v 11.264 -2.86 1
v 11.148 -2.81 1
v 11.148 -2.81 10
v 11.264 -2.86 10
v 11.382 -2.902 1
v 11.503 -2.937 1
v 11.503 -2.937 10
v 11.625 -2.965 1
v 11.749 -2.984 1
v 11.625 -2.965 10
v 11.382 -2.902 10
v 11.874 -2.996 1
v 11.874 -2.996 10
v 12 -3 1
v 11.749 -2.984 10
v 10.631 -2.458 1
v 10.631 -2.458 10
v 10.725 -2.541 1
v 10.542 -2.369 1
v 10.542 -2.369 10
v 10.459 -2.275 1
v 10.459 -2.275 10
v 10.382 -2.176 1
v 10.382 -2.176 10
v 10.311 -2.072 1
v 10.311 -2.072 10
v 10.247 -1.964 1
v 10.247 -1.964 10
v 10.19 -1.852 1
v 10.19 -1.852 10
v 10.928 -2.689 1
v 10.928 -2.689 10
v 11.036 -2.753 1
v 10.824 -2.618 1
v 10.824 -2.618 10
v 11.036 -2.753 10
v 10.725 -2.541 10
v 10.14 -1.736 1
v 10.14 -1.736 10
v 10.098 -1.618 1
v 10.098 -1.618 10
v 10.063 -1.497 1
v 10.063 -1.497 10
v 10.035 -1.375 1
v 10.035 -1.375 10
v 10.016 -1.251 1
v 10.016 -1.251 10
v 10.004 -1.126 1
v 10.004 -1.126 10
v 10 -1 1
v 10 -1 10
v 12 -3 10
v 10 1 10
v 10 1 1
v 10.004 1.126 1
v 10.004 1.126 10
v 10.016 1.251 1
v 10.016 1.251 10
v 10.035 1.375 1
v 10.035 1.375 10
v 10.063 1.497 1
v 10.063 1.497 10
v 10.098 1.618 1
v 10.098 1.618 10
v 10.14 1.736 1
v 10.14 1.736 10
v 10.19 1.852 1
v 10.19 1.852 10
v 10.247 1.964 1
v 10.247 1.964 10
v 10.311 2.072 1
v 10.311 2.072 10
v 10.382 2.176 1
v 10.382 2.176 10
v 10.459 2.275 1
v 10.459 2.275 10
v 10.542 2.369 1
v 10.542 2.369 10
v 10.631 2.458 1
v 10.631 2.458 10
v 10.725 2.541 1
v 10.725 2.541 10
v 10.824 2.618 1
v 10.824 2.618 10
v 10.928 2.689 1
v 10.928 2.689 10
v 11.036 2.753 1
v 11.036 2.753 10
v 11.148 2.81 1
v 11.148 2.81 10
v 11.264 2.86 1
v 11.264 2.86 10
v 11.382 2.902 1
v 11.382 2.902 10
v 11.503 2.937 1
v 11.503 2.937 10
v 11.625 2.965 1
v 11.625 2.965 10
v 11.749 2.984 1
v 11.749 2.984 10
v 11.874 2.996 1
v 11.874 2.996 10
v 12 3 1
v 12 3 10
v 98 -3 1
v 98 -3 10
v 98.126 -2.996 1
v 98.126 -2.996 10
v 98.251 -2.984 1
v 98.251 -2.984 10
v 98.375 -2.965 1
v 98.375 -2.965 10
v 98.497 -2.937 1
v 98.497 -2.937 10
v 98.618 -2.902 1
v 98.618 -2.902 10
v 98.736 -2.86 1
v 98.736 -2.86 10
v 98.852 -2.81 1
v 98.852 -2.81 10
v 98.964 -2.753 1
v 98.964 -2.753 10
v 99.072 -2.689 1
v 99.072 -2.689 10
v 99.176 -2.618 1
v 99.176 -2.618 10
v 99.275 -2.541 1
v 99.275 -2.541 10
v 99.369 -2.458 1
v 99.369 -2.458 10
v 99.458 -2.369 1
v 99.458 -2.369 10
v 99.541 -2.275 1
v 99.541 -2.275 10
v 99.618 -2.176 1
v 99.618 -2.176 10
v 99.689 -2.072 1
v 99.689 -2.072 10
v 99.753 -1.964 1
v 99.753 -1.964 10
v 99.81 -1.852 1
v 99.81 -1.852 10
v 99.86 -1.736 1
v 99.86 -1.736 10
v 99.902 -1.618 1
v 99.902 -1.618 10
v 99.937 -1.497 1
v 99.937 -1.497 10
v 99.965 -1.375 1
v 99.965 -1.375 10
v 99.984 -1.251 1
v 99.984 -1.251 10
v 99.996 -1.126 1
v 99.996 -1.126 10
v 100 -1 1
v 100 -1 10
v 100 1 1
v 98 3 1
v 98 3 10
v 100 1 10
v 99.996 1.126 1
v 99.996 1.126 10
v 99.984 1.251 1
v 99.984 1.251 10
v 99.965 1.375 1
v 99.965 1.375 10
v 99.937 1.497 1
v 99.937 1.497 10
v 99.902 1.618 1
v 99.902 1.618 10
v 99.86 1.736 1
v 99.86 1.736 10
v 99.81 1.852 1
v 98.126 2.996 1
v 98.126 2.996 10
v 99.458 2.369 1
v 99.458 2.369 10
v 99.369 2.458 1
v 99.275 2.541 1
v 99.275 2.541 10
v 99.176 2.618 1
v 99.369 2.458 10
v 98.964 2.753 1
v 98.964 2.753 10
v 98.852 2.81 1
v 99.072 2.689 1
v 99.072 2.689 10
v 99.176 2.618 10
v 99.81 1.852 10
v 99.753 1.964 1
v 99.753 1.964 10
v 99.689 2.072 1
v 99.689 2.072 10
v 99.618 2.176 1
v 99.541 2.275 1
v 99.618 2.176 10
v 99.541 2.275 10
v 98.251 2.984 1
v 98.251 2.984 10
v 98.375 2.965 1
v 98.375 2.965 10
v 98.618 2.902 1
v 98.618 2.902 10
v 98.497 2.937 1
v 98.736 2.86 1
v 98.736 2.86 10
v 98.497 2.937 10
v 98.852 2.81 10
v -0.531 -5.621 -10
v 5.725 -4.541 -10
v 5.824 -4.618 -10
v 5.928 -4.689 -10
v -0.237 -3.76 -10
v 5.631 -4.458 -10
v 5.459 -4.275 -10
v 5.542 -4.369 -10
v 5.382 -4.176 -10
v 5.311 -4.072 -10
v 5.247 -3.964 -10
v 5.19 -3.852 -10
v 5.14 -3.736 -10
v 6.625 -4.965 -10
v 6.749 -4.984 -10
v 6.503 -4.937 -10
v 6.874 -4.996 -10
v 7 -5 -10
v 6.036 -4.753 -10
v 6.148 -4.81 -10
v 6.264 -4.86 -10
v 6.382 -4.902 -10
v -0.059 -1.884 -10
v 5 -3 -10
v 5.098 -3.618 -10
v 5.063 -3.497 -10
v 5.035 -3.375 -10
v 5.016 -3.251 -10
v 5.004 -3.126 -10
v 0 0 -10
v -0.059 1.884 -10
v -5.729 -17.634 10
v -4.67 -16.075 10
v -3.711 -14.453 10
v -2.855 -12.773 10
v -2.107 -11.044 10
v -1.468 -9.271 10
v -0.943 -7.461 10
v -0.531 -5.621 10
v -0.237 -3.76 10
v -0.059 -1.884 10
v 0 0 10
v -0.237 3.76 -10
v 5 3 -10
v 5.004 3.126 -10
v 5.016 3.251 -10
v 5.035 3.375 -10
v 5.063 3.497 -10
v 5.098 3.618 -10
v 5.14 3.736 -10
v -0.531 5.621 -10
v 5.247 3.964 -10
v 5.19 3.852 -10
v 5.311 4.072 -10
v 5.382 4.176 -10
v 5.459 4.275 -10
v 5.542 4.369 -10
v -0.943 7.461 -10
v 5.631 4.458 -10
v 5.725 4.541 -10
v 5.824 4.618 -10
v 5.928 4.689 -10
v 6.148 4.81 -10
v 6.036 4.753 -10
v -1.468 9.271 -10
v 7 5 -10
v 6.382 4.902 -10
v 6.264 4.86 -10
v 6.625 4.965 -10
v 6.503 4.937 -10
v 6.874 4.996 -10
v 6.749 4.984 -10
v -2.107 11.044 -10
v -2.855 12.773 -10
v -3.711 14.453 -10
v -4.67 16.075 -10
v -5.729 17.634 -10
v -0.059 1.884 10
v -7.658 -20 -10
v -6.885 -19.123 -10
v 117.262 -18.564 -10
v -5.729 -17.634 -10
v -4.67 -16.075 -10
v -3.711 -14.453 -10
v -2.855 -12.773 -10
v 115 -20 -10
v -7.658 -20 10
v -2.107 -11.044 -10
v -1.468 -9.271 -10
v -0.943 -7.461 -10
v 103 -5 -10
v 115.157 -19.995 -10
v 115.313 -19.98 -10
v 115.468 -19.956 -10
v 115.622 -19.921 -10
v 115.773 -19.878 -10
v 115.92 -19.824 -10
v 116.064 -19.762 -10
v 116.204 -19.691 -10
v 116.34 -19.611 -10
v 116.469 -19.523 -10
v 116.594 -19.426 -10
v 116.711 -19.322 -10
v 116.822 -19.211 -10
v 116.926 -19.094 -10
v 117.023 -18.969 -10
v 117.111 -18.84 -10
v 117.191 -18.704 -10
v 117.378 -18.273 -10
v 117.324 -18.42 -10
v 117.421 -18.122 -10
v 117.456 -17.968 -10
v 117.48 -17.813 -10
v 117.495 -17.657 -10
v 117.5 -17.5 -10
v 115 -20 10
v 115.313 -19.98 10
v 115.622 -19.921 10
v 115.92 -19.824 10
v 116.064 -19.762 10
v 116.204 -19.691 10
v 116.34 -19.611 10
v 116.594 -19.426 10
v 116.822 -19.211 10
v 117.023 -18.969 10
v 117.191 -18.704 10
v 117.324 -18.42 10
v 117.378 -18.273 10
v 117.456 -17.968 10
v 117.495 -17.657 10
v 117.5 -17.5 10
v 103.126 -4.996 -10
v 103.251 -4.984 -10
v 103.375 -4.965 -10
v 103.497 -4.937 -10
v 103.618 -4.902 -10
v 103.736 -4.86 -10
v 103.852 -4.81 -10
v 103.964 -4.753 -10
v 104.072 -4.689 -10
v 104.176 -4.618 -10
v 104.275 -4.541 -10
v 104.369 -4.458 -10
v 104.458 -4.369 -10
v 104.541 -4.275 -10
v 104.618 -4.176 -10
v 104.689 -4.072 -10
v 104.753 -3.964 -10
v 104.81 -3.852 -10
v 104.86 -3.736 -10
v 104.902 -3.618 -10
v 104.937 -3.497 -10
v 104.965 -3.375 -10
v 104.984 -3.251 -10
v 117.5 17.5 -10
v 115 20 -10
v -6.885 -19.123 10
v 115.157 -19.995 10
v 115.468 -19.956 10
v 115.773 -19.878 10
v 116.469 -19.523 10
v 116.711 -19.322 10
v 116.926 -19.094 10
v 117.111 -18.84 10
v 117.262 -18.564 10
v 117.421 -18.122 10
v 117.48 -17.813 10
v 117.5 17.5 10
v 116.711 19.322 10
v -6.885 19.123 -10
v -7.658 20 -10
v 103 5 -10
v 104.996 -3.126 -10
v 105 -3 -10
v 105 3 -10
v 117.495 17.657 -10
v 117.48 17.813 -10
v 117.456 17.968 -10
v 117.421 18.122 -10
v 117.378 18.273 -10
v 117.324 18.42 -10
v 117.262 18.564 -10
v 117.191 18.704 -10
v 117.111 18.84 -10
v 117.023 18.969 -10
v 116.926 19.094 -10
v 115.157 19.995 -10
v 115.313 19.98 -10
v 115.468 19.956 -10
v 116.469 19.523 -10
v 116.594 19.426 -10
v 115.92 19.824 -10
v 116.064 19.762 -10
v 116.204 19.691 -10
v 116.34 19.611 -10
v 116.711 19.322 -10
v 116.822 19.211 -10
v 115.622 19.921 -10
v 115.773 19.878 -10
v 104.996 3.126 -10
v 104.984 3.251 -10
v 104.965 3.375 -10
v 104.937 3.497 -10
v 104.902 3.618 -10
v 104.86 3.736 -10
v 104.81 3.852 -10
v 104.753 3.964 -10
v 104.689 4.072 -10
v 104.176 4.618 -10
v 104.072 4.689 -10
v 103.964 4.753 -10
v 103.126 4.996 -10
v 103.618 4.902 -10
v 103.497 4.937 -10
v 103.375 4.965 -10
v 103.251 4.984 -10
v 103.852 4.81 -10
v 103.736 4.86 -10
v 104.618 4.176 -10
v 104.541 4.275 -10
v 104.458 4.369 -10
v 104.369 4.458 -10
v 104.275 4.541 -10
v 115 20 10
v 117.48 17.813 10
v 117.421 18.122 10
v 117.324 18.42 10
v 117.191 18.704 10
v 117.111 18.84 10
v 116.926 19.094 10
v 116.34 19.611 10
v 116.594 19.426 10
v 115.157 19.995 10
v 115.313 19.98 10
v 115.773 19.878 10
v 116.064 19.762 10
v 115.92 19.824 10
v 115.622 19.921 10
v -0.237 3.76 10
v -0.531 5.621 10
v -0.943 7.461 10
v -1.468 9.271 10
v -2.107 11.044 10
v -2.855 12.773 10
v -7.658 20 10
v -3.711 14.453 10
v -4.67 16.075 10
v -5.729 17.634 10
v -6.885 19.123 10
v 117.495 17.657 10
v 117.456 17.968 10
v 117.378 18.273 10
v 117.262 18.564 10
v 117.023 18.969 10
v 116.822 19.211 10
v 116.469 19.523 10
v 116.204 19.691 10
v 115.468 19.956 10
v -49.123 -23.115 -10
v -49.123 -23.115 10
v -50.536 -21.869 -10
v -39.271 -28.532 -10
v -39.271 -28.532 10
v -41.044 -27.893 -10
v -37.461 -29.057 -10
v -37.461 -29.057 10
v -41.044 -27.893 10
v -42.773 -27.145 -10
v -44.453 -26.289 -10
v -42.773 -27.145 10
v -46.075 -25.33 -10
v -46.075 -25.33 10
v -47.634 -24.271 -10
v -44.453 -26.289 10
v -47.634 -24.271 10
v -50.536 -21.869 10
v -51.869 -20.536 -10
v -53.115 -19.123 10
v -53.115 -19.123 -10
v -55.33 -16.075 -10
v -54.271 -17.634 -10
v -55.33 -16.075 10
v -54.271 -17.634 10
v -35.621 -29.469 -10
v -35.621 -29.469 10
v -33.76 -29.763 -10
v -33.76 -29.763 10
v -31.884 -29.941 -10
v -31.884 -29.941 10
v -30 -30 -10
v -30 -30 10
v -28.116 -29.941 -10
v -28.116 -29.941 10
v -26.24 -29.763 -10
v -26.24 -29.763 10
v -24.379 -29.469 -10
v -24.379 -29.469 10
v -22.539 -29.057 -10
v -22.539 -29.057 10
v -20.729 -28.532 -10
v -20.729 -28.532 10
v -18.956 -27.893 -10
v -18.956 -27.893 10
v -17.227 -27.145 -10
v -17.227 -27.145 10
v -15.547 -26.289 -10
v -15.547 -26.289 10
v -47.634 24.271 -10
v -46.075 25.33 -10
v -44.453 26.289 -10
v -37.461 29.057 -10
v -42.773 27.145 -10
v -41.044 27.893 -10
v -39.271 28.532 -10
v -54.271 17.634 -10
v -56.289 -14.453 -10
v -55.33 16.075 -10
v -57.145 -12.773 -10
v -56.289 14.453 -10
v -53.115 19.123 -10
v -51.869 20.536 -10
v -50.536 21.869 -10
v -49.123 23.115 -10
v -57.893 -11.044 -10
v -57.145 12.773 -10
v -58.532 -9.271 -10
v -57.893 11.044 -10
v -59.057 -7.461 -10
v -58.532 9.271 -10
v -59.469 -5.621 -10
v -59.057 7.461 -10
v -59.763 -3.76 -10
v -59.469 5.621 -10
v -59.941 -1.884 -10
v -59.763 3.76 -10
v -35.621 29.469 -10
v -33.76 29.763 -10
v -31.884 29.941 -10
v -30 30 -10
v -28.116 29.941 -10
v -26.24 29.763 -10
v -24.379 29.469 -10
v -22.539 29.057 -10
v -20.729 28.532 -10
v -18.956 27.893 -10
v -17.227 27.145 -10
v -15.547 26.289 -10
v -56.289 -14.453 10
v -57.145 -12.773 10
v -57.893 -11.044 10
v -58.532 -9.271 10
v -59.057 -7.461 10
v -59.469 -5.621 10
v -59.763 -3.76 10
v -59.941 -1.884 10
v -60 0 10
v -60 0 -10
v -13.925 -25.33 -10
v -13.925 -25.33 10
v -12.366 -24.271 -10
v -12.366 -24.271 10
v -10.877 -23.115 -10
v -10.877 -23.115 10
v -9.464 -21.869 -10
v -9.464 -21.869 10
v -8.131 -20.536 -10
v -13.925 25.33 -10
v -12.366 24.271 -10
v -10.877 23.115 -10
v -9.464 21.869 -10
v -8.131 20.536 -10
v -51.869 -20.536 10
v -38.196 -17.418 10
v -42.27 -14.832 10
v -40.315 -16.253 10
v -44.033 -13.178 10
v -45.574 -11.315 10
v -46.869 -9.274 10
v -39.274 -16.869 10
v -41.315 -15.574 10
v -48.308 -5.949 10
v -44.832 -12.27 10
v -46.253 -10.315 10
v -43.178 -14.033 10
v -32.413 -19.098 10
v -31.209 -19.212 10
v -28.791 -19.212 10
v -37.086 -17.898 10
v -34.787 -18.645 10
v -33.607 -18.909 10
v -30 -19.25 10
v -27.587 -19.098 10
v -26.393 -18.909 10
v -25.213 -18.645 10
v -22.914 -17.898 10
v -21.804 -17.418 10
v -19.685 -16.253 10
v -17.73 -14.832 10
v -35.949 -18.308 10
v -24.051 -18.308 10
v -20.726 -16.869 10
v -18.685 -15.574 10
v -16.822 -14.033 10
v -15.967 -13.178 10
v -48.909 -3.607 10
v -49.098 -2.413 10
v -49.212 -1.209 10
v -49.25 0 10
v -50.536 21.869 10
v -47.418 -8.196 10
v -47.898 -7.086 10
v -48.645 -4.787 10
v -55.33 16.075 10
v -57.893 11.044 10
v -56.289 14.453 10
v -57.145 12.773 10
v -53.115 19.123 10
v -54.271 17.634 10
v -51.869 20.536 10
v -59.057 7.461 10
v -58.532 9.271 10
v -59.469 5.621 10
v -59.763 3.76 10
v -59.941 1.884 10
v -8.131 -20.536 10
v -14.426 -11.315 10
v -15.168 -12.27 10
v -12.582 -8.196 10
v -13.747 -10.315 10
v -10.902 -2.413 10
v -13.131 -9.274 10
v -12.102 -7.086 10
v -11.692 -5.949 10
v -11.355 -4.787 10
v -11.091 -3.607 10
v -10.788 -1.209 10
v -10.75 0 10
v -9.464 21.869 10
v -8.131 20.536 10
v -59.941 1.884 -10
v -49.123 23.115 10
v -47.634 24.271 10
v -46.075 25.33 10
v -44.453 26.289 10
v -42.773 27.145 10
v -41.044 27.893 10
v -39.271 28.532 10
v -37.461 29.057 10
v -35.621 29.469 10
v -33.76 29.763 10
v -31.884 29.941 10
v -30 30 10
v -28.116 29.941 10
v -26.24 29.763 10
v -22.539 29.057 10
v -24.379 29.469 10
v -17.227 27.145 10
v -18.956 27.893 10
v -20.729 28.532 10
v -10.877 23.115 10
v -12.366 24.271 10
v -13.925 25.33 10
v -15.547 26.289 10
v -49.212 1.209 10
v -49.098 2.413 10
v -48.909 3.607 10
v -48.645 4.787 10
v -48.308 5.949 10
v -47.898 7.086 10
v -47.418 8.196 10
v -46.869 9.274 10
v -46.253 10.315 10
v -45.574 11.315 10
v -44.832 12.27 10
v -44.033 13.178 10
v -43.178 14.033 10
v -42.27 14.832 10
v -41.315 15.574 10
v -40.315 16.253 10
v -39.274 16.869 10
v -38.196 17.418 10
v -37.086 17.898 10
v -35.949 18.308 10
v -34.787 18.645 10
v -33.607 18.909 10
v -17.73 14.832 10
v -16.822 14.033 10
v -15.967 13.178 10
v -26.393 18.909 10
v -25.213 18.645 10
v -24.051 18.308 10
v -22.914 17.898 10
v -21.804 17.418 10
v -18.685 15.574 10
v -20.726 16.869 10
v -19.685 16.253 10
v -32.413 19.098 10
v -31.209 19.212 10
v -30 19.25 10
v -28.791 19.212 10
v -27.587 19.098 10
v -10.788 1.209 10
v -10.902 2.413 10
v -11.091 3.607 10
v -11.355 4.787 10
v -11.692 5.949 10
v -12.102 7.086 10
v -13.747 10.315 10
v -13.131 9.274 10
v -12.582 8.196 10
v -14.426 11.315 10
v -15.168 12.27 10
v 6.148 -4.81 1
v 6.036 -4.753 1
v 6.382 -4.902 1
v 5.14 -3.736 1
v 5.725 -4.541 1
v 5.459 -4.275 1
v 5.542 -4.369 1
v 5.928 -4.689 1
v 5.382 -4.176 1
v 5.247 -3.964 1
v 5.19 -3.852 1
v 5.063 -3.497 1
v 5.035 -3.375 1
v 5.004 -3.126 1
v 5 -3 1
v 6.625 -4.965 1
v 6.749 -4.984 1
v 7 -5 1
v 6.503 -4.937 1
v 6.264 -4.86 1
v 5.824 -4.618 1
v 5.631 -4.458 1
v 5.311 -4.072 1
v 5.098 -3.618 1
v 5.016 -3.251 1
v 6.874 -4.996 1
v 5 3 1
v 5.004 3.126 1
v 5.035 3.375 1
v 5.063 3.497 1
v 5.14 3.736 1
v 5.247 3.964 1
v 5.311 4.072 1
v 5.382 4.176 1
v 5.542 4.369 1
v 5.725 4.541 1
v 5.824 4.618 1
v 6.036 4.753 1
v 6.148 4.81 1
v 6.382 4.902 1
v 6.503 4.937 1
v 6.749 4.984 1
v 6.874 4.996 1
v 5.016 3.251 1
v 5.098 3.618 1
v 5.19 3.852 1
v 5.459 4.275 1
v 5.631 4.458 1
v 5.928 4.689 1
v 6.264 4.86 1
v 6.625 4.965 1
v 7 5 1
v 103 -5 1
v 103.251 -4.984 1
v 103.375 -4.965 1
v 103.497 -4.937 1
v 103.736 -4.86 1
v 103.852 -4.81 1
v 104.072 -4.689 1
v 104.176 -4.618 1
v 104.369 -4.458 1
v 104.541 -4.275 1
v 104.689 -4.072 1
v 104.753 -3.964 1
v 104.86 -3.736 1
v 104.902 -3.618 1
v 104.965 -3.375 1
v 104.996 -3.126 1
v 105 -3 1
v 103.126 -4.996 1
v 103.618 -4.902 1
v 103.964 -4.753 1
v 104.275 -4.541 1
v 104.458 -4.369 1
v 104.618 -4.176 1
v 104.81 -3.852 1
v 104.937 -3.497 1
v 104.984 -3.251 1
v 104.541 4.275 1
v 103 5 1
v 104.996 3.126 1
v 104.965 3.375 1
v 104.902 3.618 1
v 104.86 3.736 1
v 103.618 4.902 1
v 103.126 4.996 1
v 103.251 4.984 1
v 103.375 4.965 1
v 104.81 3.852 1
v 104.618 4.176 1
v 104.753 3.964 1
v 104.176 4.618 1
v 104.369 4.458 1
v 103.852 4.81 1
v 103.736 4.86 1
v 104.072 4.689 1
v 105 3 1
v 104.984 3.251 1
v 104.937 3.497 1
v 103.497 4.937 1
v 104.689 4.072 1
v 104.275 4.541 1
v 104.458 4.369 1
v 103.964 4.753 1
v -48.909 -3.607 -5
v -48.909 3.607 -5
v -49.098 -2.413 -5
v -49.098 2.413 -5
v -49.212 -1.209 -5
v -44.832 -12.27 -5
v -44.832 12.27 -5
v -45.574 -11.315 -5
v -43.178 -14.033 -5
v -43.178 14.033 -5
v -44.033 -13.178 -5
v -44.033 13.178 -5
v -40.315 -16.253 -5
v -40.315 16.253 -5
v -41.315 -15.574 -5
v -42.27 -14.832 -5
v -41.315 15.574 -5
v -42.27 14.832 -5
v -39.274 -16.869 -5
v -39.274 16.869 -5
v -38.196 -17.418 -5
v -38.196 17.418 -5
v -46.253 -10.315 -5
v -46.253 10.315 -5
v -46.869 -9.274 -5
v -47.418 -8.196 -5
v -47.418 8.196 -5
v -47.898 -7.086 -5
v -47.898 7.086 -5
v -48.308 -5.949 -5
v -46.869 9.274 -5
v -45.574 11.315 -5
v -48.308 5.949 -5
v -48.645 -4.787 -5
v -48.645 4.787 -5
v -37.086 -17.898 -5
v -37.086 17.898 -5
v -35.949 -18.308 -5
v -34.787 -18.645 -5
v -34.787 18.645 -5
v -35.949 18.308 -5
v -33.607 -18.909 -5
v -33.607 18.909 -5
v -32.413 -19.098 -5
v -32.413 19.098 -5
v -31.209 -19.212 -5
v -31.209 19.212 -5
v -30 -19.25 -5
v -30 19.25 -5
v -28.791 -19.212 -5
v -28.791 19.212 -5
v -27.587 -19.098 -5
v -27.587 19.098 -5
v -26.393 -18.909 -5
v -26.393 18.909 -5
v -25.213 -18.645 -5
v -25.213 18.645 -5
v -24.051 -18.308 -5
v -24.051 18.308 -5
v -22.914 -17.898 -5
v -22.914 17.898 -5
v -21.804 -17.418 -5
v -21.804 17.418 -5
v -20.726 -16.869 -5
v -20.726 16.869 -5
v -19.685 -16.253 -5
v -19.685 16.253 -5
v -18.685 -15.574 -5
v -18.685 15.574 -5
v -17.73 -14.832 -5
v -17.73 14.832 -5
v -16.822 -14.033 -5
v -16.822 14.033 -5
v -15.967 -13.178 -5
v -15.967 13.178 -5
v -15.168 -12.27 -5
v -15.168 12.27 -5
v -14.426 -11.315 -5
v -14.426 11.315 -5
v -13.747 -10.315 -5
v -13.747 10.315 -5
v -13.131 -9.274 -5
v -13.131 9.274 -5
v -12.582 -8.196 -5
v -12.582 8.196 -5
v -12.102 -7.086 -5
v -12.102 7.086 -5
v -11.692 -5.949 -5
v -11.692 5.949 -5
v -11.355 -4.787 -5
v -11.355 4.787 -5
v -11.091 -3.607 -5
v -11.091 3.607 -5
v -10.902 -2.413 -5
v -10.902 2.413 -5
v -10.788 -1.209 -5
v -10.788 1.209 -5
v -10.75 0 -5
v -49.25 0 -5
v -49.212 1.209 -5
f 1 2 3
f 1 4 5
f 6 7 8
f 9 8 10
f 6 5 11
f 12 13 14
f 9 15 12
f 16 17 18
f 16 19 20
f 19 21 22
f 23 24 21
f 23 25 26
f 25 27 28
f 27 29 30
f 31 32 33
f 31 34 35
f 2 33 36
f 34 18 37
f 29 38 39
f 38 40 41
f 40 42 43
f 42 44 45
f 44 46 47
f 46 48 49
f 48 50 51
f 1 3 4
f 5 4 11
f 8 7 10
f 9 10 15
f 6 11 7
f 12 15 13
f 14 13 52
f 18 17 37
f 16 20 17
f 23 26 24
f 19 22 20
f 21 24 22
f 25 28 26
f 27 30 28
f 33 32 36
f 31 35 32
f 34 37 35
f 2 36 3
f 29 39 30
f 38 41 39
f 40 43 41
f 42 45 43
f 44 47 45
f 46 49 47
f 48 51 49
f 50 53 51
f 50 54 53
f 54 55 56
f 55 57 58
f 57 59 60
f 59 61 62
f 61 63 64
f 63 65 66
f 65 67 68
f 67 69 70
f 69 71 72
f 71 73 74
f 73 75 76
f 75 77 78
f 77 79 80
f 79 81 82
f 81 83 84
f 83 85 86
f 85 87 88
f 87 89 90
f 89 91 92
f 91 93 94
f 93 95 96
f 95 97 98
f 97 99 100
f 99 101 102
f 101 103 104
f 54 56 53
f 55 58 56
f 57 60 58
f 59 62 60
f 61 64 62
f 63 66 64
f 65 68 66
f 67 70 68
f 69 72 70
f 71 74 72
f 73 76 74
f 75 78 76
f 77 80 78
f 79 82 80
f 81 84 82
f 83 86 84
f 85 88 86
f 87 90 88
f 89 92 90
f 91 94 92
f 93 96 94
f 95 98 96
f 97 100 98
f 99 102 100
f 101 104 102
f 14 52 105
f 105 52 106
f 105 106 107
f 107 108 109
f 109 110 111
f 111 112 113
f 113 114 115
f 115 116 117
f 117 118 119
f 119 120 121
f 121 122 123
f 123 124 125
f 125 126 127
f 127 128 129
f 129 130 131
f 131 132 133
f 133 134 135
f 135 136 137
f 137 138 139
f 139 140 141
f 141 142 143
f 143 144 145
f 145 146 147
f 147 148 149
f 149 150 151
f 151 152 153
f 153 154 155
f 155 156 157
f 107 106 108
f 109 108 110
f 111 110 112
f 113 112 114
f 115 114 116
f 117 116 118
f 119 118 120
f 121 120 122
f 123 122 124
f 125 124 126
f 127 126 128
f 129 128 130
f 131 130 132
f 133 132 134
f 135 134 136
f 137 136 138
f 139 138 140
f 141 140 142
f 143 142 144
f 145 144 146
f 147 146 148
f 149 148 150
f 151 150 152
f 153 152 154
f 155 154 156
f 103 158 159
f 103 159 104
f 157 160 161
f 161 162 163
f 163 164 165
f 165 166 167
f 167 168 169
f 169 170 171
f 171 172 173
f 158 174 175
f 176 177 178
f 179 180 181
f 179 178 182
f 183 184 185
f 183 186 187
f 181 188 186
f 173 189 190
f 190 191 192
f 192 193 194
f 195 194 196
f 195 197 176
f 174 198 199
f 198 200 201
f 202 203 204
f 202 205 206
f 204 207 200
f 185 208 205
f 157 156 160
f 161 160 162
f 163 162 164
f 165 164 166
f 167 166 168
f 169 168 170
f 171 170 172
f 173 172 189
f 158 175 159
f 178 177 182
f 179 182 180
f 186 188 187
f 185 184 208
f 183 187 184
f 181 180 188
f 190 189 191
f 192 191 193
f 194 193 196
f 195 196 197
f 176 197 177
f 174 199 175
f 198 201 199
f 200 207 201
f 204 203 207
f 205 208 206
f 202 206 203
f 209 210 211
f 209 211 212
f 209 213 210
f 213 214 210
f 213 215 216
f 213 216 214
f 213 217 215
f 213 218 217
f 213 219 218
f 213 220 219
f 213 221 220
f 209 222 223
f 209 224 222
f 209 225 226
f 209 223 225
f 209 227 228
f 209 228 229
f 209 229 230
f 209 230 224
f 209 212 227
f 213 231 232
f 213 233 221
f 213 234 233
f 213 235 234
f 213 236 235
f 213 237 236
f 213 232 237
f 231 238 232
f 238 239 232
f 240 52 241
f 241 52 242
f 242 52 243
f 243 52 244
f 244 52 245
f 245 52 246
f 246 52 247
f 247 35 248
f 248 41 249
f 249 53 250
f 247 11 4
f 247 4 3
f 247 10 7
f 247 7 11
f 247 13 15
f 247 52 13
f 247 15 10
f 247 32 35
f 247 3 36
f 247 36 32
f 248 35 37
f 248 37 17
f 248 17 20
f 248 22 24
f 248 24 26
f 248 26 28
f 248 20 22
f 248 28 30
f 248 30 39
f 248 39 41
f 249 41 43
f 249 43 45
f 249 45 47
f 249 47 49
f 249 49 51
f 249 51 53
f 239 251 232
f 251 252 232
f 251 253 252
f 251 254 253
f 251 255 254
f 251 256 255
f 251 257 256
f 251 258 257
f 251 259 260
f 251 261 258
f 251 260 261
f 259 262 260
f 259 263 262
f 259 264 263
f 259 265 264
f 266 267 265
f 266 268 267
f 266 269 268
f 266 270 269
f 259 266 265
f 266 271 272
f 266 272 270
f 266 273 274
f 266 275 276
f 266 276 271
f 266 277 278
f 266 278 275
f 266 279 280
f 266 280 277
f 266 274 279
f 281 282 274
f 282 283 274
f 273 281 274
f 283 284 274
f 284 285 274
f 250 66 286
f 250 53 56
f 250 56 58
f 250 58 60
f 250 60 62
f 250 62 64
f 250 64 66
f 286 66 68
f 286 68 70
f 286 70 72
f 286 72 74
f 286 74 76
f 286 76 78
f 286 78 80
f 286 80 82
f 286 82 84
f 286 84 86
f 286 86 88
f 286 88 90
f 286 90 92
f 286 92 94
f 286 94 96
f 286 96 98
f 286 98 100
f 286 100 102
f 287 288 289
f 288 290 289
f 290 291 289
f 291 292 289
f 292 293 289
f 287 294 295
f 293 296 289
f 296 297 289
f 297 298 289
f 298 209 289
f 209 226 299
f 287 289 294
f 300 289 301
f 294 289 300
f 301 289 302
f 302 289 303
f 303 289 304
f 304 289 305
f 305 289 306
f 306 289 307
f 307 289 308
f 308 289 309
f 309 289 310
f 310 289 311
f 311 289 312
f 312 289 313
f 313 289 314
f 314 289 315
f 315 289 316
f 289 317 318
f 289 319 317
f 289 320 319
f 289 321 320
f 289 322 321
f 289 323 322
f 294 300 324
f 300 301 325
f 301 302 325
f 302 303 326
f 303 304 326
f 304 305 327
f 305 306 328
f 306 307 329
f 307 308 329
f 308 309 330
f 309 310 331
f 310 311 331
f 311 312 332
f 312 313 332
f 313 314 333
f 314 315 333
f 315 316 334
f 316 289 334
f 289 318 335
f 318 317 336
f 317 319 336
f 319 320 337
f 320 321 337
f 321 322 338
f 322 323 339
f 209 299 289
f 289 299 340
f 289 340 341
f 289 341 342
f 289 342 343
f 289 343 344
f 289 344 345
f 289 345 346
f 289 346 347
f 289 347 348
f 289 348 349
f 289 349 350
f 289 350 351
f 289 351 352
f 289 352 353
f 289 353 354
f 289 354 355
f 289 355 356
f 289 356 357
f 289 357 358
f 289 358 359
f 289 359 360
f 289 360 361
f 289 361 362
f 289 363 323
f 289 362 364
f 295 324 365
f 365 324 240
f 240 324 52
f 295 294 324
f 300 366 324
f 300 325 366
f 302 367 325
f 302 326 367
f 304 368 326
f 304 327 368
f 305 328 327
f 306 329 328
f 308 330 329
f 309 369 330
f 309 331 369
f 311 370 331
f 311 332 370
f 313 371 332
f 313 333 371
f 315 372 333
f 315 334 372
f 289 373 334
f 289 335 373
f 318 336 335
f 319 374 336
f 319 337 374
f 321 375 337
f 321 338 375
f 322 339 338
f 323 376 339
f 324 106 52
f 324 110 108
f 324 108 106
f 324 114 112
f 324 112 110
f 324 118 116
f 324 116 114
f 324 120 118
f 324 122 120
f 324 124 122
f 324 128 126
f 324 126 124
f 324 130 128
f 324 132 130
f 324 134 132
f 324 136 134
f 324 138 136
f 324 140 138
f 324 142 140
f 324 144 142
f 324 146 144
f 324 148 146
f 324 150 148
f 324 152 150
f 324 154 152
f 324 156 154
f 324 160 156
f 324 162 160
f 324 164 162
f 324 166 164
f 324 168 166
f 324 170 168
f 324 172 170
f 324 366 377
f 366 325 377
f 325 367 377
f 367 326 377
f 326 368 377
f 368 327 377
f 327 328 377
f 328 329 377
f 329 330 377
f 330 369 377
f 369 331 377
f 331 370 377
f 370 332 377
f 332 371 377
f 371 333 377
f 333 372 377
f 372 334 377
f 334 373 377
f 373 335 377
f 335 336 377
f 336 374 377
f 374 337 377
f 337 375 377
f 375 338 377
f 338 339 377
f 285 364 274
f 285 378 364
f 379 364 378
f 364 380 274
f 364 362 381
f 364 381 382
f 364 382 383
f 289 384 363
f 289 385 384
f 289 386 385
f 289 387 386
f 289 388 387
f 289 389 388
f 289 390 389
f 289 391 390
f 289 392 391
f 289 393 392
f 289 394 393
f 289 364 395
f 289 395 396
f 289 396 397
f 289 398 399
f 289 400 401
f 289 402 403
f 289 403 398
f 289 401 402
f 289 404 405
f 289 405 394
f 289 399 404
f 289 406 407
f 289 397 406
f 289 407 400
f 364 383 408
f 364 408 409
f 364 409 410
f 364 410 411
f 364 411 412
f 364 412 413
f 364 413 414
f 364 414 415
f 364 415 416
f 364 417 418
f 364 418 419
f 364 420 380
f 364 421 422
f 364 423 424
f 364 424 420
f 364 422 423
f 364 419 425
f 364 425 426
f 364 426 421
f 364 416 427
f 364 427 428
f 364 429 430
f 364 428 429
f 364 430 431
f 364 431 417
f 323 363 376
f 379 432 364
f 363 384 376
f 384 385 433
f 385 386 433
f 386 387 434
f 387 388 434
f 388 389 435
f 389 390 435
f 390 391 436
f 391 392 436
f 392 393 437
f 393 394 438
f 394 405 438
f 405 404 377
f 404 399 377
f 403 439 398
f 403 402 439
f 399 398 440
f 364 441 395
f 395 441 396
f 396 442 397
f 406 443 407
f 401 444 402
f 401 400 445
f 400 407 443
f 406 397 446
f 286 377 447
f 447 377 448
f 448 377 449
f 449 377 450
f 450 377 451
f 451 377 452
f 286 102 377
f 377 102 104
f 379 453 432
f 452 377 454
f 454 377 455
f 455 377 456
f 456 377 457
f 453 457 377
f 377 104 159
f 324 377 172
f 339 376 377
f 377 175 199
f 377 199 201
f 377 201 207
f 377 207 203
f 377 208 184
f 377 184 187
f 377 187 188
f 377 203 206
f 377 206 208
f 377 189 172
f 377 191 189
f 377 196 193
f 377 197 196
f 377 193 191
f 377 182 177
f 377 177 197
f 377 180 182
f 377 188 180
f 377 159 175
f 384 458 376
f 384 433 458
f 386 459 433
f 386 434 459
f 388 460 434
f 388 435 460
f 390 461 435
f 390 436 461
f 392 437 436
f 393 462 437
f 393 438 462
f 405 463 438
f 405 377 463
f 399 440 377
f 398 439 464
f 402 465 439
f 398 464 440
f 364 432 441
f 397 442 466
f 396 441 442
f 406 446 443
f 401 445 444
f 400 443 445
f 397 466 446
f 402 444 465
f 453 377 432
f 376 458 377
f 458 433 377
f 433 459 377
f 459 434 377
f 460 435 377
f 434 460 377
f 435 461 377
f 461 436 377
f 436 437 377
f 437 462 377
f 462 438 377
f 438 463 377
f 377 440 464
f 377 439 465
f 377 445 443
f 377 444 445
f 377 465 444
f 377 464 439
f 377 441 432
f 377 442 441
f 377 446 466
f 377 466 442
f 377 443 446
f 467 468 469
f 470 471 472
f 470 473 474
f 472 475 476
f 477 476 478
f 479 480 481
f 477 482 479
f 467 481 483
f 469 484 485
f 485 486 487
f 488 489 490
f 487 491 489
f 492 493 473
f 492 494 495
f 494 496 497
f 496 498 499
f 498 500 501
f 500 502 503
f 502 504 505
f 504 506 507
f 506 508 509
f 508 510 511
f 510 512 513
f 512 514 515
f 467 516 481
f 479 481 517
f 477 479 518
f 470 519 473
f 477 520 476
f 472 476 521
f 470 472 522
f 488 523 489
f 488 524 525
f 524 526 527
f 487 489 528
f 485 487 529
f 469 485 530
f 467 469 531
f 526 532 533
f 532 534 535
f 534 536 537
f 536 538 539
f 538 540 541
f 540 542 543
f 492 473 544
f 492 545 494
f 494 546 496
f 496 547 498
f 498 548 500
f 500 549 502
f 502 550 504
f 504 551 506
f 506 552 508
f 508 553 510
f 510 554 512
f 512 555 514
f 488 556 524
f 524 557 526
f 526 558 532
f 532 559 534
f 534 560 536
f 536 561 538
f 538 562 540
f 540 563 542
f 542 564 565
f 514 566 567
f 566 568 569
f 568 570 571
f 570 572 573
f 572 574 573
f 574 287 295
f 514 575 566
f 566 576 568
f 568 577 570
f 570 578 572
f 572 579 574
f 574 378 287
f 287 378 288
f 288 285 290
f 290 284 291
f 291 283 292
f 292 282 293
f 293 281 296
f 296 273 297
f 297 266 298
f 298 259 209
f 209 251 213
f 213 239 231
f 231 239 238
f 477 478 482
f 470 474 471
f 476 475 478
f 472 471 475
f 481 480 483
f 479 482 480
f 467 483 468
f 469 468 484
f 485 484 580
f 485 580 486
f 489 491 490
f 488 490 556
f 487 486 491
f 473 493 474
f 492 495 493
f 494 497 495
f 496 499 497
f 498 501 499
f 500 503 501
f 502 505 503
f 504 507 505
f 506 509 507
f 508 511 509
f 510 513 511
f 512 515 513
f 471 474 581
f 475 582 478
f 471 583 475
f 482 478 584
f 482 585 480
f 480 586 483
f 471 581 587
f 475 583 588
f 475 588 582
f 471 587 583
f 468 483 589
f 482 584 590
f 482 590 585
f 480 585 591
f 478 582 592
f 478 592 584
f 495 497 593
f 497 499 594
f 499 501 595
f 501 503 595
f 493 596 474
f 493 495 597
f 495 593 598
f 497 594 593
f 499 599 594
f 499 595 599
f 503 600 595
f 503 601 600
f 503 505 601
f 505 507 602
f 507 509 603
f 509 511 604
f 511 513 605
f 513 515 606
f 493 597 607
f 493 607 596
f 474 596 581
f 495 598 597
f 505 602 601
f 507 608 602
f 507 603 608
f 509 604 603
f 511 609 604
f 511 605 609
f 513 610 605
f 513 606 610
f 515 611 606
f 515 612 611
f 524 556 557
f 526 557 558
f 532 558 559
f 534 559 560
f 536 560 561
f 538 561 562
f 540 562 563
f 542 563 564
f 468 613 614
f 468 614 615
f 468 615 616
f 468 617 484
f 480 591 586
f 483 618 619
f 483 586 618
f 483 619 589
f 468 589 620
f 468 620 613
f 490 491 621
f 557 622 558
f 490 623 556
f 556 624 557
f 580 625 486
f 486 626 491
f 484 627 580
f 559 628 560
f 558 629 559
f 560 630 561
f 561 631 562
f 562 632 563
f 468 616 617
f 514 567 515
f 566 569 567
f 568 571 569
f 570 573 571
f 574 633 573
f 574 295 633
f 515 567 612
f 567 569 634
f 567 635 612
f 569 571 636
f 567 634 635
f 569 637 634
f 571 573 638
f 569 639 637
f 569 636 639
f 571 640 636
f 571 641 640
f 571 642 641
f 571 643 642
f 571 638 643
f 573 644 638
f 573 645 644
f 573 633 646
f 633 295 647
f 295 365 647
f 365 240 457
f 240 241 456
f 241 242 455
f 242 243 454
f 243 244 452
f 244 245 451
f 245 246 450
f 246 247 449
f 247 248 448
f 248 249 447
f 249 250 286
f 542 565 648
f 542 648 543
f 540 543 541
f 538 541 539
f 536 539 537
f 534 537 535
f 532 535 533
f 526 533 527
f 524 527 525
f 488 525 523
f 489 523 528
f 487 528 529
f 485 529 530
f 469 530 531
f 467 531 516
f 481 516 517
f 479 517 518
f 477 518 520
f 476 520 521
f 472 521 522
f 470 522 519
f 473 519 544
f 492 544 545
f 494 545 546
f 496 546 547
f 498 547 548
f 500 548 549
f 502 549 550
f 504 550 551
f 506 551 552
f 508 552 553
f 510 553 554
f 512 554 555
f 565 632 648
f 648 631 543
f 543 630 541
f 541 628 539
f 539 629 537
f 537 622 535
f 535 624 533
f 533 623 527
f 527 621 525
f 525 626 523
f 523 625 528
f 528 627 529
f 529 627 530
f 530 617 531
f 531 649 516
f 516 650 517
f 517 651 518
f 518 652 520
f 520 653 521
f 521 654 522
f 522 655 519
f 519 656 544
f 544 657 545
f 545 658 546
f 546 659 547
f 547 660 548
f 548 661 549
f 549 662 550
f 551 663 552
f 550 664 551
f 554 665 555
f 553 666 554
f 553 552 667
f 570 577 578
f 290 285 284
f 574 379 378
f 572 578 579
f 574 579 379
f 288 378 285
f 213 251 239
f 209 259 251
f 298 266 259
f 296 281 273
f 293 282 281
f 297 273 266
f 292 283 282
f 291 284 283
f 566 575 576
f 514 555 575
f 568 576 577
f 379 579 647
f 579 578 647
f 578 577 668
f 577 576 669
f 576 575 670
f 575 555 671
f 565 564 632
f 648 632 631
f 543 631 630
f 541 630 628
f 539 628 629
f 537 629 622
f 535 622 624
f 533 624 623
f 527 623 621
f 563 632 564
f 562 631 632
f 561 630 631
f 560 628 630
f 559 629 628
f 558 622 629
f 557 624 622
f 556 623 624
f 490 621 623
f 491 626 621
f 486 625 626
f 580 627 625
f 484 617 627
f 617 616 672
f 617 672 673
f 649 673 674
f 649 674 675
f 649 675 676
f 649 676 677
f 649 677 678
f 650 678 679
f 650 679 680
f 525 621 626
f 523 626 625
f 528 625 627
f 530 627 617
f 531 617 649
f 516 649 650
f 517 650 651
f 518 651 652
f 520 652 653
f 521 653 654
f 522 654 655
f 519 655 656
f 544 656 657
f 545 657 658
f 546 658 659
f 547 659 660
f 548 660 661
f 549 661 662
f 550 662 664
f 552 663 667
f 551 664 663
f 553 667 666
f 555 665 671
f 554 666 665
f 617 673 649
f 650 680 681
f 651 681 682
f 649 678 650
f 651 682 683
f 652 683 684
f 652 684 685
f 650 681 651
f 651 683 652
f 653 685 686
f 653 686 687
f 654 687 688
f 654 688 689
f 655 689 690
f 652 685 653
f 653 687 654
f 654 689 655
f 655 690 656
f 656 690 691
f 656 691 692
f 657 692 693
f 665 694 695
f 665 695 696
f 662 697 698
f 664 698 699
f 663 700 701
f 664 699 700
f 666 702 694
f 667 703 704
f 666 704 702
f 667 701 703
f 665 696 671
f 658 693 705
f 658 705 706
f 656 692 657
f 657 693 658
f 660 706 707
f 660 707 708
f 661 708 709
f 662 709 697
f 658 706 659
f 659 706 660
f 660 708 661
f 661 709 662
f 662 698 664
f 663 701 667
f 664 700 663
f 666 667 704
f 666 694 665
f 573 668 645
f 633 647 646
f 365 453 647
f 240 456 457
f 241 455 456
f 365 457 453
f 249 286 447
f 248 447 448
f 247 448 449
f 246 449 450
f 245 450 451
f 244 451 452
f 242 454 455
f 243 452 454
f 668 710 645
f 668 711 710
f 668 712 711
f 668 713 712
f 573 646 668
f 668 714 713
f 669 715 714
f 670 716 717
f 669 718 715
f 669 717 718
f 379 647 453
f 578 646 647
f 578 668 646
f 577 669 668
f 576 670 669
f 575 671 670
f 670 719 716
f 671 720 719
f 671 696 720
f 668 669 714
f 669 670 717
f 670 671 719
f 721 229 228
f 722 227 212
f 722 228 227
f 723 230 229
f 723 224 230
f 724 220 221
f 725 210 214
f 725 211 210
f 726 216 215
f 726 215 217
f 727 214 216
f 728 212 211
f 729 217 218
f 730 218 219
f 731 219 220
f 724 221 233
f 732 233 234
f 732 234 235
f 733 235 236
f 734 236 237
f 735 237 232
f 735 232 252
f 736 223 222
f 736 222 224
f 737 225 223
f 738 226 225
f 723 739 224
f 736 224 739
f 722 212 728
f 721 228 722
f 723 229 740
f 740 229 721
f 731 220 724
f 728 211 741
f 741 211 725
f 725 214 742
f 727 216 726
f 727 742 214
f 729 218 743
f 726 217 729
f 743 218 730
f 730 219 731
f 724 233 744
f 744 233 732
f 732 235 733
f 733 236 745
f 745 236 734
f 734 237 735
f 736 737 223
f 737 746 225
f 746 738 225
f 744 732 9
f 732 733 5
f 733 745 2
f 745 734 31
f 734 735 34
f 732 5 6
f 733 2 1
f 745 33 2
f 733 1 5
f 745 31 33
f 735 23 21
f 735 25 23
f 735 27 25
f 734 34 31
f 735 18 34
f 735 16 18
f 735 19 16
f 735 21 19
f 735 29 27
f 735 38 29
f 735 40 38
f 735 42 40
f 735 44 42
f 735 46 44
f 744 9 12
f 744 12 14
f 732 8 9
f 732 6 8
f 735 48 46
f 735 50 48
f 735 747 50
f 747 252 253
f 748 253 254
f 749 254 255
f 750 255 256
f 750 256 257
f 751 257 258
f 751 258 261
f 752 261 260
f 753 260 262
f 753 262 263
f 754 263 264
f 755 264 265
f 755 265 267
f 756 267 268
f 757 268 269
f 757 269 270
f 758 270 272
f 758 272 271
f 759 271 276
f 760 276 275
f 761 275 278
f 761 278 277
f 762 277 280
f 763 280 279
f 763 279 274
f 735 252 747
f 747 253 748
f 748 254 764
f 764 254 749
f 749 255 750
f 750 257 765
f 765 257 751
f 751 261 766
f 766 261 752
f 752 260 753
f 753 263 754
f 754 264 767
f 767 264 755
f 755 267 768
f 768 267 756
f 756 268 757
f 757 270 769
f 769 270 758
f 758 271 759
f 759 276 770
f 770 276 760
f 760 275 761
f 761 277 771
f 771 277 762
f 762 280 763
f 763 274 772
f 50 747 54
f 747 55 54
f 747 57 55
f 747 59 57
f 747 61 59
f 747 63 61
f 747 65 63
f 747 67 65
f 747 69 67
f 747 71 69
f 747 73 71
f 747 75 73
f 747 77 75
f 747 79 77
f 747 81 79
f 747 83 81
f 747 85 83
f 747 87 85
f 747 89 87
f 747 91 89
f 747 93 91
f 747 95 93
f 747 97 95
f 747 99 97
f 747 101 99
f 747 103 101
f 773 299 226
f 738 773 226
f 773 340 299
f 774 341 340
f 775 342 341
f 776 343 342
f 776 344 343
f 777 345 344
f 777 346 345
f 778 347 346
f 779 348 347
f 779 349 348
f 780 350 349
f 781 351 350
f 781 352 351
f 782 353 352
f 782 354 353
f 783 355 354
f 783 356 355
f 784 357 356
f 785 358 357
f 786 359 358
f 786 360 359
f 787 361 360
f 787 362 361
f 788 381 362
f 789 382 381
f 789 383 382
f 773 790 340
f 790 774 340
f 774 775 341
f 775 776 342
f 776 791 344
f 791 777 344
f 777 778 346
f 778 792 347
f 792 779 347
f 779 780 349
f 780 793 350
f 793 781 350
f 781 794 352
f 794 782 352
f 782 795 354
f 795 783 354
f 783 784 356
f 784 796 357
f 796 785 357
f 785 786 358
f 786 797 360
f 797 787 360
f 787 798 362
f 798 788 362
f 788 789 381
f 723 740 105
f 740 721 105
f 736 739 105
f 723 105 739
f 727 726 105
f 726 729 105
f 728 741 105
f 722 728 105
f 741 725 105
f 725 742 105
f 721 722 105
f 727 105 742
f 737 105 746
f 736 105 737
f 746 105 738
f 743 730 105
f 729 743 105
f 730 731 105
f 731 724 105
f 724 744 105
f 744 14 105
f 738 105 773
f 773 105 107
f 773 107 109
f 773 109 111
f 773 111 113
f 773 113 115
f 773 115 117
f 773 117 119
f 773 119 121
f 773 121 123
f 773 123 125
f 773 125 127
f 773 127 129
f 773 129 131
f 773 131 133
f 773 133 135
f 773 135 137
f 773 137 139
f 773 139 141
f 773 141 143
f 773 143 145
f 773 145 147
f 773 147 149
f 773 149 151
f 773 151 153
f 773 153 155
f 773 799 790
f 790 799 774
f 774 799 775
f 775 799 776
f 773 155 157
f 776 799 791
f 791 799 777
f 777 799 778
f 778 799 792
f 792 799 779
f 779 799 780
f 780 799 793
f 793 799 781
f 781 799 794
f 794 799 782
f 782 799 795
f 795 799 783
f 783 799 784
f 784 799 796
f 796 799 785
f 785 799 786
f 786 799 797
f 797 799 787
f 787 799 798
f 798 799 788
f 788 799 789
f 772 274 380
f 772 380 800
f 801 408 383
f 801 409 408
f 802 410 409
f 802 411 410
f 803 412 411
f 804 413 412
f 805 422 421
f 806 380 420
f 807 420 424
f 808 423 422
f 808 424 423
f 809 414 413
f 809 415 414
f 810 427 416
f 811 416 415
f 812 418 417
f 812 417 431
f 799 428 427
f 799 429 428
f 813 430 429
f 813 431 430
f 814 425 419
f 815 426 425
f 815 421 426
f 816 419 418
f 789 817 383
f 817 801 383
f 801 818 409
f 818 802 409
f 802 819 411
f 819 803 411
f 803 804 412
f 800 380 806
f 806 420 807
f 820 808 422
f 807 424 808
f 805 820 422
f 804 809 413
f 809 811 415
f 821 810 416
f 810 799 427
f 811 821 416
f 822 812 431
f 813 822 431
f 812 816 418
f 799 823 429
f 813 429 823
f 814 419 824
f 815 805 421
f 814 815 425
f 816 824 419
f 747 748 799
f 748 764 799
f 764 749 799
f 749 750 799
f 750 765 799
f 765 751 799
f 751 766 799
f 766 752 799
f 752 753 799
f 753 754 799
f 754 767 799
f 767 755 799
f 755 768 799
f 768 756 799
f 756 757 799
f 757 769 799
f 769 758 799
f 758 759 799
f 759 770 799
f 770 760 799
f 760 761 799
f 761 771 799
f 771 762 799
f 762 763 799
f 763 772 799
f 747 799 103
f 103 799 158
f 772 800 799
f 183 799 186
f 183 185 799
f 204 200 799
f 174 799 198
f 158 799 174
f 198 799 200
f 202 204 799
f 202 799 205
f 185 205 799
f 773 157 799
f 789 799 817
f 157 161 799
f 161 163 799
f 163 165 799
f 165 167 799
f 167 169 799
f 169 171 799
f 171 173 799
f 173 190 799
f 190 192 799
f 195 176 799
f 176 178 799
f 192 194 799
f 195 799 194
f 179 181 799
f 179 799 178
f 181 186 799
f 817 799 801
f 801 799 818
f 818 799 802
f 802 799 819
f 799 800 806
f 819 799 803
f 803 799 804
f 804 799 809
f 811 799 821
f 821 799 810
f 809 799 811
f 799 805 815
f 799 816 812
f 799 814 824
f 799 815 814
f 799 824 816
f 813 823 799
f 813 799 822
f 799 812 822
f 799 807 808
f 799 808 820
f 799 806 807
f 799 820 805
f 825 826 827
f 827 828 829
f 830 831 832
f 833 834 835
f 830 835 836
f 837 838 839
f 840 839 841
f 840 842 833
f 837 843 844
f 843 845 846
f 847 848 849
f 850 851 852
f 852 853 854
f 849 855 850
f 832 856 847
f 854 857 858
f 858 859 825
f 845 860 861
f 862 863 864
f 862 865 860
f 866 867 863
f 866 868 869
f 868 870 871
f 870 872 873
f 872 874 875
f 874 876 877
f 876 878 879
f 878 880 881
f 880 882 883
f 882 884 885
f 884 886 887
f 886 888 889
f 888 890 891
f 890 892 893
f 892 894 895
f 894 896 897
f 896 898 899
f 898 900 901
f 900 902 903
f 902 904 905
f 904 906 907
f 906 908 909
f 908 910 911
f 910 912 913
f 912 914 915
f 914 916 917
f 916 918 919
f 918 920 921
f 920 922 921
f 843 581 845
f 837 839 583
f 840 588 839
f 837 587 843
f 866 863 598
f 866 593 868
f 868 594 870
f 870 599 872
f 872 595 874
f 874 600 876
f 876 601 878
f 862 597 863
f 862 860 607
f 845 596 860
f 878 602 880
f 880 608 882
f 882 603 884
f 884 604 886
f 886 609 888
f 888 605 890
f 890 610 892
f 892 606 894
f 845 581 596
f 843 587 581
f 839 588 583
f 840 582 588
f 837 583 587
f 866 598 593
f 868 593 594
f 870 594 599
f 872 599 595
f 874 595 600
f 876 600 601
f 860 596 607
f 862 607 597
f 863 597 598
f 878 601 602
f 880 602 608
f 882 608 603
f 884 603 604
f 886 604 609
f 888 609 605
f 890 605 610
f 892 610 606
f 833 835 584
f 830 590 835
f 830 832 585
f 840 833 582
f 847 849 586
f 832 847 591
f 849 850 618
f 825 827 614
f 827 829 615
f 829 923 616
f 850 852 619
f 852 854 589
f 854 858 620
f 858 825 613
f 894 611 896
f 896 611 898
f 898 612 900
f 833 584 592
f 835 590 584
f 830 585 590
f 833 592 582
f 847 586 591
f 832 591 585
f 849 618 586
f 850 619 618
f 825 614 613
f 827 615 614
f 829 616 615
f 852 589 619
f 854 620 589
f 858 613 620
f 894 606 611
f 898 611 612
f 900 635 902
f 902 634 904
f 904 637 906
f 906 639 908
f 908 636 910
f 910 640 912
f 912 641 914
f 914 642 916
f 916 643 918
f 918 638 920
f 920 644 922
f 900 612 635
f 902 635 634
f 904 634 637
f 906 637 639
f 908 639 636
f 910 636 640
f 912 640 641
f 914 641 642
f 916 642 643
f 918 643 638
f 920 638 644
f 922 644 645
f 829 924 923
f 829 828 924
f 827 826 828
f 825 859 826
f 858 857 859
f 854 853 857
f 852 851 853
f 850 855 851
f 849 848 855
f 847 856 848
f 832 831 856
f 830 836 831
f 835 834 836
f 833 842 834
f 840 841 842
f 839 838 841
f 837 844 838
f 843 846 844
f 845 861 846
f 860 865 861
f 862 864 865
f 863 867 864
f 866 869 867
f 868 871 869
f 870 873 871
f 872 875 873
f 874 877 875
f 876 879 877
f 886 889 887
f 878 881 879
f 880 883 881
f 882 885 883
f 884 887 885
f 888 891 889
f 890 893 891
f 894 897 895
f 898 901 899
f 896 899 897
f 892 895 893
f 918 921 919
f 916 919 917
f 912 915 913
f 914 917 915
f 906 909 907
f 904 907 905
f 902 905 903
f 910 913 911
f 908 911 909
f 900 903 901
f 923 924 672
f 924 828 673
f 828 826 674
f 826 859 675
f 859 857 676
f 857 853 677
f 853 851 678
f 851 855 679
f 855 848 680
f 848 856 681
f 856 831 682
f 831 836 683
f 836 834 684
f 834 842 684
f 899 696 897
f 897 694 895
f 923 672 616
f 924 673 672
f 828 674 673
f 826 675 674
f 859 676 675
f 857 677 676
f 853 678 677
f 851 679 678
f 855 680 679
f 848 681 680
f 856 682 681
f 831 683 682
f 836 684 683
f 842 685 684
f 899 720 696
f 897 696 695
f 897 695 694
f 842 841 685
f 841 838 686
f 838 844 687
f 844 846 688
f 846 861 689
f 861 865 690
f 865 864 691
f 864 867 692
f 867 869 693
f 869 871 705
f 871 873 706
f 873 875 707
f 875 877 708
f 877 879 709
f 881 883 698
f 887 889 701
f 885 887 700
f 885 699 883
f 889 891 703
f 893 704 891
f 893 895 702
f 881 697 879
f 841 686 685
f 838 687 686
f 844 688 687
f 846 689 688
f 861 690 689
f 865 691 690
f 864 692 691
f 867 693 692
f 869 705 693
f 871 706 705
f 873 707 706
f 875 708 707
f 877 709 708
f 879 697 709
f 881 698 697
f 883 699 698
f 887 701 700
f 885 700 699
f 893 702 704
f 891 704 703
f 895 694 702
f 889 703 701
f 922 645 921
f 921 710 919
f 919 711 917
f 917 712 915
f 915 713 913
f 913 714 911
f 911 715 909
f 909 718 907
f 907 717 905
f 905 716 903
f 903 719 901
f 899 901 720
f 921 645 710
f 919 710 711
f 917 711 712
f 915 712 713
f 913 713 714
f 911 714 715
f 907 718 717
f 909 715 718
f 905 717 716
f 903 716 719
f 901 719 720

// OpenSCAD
$fn = 100;

difference() {
    union() {
        translate([-30, 0, 0]) cylinder(h = 20, d = 60, center = true);
        translate([50, 0, 0])
            minkowski() {
                cube([130, 35, 10], center = true);
                cylinder(h = 10, d = 5, center = true);
            }
    }
    translate([-30, 0, 2.5]) cylinder(h = 15, d = 38.5, center = true);
    translate([55, 0, 0])
        union() {
            minkowski() {
                cube([86, 2, 10], center = true);
                cylinder(h = 10, d = 4, center = true);
            }
            translate([0, 0, -4.5])
                minkowski() {
                    cube([96, 6, 6], center = true);
                    cylinder(h = 5, d = 4, center = true);
                }
        }
}
